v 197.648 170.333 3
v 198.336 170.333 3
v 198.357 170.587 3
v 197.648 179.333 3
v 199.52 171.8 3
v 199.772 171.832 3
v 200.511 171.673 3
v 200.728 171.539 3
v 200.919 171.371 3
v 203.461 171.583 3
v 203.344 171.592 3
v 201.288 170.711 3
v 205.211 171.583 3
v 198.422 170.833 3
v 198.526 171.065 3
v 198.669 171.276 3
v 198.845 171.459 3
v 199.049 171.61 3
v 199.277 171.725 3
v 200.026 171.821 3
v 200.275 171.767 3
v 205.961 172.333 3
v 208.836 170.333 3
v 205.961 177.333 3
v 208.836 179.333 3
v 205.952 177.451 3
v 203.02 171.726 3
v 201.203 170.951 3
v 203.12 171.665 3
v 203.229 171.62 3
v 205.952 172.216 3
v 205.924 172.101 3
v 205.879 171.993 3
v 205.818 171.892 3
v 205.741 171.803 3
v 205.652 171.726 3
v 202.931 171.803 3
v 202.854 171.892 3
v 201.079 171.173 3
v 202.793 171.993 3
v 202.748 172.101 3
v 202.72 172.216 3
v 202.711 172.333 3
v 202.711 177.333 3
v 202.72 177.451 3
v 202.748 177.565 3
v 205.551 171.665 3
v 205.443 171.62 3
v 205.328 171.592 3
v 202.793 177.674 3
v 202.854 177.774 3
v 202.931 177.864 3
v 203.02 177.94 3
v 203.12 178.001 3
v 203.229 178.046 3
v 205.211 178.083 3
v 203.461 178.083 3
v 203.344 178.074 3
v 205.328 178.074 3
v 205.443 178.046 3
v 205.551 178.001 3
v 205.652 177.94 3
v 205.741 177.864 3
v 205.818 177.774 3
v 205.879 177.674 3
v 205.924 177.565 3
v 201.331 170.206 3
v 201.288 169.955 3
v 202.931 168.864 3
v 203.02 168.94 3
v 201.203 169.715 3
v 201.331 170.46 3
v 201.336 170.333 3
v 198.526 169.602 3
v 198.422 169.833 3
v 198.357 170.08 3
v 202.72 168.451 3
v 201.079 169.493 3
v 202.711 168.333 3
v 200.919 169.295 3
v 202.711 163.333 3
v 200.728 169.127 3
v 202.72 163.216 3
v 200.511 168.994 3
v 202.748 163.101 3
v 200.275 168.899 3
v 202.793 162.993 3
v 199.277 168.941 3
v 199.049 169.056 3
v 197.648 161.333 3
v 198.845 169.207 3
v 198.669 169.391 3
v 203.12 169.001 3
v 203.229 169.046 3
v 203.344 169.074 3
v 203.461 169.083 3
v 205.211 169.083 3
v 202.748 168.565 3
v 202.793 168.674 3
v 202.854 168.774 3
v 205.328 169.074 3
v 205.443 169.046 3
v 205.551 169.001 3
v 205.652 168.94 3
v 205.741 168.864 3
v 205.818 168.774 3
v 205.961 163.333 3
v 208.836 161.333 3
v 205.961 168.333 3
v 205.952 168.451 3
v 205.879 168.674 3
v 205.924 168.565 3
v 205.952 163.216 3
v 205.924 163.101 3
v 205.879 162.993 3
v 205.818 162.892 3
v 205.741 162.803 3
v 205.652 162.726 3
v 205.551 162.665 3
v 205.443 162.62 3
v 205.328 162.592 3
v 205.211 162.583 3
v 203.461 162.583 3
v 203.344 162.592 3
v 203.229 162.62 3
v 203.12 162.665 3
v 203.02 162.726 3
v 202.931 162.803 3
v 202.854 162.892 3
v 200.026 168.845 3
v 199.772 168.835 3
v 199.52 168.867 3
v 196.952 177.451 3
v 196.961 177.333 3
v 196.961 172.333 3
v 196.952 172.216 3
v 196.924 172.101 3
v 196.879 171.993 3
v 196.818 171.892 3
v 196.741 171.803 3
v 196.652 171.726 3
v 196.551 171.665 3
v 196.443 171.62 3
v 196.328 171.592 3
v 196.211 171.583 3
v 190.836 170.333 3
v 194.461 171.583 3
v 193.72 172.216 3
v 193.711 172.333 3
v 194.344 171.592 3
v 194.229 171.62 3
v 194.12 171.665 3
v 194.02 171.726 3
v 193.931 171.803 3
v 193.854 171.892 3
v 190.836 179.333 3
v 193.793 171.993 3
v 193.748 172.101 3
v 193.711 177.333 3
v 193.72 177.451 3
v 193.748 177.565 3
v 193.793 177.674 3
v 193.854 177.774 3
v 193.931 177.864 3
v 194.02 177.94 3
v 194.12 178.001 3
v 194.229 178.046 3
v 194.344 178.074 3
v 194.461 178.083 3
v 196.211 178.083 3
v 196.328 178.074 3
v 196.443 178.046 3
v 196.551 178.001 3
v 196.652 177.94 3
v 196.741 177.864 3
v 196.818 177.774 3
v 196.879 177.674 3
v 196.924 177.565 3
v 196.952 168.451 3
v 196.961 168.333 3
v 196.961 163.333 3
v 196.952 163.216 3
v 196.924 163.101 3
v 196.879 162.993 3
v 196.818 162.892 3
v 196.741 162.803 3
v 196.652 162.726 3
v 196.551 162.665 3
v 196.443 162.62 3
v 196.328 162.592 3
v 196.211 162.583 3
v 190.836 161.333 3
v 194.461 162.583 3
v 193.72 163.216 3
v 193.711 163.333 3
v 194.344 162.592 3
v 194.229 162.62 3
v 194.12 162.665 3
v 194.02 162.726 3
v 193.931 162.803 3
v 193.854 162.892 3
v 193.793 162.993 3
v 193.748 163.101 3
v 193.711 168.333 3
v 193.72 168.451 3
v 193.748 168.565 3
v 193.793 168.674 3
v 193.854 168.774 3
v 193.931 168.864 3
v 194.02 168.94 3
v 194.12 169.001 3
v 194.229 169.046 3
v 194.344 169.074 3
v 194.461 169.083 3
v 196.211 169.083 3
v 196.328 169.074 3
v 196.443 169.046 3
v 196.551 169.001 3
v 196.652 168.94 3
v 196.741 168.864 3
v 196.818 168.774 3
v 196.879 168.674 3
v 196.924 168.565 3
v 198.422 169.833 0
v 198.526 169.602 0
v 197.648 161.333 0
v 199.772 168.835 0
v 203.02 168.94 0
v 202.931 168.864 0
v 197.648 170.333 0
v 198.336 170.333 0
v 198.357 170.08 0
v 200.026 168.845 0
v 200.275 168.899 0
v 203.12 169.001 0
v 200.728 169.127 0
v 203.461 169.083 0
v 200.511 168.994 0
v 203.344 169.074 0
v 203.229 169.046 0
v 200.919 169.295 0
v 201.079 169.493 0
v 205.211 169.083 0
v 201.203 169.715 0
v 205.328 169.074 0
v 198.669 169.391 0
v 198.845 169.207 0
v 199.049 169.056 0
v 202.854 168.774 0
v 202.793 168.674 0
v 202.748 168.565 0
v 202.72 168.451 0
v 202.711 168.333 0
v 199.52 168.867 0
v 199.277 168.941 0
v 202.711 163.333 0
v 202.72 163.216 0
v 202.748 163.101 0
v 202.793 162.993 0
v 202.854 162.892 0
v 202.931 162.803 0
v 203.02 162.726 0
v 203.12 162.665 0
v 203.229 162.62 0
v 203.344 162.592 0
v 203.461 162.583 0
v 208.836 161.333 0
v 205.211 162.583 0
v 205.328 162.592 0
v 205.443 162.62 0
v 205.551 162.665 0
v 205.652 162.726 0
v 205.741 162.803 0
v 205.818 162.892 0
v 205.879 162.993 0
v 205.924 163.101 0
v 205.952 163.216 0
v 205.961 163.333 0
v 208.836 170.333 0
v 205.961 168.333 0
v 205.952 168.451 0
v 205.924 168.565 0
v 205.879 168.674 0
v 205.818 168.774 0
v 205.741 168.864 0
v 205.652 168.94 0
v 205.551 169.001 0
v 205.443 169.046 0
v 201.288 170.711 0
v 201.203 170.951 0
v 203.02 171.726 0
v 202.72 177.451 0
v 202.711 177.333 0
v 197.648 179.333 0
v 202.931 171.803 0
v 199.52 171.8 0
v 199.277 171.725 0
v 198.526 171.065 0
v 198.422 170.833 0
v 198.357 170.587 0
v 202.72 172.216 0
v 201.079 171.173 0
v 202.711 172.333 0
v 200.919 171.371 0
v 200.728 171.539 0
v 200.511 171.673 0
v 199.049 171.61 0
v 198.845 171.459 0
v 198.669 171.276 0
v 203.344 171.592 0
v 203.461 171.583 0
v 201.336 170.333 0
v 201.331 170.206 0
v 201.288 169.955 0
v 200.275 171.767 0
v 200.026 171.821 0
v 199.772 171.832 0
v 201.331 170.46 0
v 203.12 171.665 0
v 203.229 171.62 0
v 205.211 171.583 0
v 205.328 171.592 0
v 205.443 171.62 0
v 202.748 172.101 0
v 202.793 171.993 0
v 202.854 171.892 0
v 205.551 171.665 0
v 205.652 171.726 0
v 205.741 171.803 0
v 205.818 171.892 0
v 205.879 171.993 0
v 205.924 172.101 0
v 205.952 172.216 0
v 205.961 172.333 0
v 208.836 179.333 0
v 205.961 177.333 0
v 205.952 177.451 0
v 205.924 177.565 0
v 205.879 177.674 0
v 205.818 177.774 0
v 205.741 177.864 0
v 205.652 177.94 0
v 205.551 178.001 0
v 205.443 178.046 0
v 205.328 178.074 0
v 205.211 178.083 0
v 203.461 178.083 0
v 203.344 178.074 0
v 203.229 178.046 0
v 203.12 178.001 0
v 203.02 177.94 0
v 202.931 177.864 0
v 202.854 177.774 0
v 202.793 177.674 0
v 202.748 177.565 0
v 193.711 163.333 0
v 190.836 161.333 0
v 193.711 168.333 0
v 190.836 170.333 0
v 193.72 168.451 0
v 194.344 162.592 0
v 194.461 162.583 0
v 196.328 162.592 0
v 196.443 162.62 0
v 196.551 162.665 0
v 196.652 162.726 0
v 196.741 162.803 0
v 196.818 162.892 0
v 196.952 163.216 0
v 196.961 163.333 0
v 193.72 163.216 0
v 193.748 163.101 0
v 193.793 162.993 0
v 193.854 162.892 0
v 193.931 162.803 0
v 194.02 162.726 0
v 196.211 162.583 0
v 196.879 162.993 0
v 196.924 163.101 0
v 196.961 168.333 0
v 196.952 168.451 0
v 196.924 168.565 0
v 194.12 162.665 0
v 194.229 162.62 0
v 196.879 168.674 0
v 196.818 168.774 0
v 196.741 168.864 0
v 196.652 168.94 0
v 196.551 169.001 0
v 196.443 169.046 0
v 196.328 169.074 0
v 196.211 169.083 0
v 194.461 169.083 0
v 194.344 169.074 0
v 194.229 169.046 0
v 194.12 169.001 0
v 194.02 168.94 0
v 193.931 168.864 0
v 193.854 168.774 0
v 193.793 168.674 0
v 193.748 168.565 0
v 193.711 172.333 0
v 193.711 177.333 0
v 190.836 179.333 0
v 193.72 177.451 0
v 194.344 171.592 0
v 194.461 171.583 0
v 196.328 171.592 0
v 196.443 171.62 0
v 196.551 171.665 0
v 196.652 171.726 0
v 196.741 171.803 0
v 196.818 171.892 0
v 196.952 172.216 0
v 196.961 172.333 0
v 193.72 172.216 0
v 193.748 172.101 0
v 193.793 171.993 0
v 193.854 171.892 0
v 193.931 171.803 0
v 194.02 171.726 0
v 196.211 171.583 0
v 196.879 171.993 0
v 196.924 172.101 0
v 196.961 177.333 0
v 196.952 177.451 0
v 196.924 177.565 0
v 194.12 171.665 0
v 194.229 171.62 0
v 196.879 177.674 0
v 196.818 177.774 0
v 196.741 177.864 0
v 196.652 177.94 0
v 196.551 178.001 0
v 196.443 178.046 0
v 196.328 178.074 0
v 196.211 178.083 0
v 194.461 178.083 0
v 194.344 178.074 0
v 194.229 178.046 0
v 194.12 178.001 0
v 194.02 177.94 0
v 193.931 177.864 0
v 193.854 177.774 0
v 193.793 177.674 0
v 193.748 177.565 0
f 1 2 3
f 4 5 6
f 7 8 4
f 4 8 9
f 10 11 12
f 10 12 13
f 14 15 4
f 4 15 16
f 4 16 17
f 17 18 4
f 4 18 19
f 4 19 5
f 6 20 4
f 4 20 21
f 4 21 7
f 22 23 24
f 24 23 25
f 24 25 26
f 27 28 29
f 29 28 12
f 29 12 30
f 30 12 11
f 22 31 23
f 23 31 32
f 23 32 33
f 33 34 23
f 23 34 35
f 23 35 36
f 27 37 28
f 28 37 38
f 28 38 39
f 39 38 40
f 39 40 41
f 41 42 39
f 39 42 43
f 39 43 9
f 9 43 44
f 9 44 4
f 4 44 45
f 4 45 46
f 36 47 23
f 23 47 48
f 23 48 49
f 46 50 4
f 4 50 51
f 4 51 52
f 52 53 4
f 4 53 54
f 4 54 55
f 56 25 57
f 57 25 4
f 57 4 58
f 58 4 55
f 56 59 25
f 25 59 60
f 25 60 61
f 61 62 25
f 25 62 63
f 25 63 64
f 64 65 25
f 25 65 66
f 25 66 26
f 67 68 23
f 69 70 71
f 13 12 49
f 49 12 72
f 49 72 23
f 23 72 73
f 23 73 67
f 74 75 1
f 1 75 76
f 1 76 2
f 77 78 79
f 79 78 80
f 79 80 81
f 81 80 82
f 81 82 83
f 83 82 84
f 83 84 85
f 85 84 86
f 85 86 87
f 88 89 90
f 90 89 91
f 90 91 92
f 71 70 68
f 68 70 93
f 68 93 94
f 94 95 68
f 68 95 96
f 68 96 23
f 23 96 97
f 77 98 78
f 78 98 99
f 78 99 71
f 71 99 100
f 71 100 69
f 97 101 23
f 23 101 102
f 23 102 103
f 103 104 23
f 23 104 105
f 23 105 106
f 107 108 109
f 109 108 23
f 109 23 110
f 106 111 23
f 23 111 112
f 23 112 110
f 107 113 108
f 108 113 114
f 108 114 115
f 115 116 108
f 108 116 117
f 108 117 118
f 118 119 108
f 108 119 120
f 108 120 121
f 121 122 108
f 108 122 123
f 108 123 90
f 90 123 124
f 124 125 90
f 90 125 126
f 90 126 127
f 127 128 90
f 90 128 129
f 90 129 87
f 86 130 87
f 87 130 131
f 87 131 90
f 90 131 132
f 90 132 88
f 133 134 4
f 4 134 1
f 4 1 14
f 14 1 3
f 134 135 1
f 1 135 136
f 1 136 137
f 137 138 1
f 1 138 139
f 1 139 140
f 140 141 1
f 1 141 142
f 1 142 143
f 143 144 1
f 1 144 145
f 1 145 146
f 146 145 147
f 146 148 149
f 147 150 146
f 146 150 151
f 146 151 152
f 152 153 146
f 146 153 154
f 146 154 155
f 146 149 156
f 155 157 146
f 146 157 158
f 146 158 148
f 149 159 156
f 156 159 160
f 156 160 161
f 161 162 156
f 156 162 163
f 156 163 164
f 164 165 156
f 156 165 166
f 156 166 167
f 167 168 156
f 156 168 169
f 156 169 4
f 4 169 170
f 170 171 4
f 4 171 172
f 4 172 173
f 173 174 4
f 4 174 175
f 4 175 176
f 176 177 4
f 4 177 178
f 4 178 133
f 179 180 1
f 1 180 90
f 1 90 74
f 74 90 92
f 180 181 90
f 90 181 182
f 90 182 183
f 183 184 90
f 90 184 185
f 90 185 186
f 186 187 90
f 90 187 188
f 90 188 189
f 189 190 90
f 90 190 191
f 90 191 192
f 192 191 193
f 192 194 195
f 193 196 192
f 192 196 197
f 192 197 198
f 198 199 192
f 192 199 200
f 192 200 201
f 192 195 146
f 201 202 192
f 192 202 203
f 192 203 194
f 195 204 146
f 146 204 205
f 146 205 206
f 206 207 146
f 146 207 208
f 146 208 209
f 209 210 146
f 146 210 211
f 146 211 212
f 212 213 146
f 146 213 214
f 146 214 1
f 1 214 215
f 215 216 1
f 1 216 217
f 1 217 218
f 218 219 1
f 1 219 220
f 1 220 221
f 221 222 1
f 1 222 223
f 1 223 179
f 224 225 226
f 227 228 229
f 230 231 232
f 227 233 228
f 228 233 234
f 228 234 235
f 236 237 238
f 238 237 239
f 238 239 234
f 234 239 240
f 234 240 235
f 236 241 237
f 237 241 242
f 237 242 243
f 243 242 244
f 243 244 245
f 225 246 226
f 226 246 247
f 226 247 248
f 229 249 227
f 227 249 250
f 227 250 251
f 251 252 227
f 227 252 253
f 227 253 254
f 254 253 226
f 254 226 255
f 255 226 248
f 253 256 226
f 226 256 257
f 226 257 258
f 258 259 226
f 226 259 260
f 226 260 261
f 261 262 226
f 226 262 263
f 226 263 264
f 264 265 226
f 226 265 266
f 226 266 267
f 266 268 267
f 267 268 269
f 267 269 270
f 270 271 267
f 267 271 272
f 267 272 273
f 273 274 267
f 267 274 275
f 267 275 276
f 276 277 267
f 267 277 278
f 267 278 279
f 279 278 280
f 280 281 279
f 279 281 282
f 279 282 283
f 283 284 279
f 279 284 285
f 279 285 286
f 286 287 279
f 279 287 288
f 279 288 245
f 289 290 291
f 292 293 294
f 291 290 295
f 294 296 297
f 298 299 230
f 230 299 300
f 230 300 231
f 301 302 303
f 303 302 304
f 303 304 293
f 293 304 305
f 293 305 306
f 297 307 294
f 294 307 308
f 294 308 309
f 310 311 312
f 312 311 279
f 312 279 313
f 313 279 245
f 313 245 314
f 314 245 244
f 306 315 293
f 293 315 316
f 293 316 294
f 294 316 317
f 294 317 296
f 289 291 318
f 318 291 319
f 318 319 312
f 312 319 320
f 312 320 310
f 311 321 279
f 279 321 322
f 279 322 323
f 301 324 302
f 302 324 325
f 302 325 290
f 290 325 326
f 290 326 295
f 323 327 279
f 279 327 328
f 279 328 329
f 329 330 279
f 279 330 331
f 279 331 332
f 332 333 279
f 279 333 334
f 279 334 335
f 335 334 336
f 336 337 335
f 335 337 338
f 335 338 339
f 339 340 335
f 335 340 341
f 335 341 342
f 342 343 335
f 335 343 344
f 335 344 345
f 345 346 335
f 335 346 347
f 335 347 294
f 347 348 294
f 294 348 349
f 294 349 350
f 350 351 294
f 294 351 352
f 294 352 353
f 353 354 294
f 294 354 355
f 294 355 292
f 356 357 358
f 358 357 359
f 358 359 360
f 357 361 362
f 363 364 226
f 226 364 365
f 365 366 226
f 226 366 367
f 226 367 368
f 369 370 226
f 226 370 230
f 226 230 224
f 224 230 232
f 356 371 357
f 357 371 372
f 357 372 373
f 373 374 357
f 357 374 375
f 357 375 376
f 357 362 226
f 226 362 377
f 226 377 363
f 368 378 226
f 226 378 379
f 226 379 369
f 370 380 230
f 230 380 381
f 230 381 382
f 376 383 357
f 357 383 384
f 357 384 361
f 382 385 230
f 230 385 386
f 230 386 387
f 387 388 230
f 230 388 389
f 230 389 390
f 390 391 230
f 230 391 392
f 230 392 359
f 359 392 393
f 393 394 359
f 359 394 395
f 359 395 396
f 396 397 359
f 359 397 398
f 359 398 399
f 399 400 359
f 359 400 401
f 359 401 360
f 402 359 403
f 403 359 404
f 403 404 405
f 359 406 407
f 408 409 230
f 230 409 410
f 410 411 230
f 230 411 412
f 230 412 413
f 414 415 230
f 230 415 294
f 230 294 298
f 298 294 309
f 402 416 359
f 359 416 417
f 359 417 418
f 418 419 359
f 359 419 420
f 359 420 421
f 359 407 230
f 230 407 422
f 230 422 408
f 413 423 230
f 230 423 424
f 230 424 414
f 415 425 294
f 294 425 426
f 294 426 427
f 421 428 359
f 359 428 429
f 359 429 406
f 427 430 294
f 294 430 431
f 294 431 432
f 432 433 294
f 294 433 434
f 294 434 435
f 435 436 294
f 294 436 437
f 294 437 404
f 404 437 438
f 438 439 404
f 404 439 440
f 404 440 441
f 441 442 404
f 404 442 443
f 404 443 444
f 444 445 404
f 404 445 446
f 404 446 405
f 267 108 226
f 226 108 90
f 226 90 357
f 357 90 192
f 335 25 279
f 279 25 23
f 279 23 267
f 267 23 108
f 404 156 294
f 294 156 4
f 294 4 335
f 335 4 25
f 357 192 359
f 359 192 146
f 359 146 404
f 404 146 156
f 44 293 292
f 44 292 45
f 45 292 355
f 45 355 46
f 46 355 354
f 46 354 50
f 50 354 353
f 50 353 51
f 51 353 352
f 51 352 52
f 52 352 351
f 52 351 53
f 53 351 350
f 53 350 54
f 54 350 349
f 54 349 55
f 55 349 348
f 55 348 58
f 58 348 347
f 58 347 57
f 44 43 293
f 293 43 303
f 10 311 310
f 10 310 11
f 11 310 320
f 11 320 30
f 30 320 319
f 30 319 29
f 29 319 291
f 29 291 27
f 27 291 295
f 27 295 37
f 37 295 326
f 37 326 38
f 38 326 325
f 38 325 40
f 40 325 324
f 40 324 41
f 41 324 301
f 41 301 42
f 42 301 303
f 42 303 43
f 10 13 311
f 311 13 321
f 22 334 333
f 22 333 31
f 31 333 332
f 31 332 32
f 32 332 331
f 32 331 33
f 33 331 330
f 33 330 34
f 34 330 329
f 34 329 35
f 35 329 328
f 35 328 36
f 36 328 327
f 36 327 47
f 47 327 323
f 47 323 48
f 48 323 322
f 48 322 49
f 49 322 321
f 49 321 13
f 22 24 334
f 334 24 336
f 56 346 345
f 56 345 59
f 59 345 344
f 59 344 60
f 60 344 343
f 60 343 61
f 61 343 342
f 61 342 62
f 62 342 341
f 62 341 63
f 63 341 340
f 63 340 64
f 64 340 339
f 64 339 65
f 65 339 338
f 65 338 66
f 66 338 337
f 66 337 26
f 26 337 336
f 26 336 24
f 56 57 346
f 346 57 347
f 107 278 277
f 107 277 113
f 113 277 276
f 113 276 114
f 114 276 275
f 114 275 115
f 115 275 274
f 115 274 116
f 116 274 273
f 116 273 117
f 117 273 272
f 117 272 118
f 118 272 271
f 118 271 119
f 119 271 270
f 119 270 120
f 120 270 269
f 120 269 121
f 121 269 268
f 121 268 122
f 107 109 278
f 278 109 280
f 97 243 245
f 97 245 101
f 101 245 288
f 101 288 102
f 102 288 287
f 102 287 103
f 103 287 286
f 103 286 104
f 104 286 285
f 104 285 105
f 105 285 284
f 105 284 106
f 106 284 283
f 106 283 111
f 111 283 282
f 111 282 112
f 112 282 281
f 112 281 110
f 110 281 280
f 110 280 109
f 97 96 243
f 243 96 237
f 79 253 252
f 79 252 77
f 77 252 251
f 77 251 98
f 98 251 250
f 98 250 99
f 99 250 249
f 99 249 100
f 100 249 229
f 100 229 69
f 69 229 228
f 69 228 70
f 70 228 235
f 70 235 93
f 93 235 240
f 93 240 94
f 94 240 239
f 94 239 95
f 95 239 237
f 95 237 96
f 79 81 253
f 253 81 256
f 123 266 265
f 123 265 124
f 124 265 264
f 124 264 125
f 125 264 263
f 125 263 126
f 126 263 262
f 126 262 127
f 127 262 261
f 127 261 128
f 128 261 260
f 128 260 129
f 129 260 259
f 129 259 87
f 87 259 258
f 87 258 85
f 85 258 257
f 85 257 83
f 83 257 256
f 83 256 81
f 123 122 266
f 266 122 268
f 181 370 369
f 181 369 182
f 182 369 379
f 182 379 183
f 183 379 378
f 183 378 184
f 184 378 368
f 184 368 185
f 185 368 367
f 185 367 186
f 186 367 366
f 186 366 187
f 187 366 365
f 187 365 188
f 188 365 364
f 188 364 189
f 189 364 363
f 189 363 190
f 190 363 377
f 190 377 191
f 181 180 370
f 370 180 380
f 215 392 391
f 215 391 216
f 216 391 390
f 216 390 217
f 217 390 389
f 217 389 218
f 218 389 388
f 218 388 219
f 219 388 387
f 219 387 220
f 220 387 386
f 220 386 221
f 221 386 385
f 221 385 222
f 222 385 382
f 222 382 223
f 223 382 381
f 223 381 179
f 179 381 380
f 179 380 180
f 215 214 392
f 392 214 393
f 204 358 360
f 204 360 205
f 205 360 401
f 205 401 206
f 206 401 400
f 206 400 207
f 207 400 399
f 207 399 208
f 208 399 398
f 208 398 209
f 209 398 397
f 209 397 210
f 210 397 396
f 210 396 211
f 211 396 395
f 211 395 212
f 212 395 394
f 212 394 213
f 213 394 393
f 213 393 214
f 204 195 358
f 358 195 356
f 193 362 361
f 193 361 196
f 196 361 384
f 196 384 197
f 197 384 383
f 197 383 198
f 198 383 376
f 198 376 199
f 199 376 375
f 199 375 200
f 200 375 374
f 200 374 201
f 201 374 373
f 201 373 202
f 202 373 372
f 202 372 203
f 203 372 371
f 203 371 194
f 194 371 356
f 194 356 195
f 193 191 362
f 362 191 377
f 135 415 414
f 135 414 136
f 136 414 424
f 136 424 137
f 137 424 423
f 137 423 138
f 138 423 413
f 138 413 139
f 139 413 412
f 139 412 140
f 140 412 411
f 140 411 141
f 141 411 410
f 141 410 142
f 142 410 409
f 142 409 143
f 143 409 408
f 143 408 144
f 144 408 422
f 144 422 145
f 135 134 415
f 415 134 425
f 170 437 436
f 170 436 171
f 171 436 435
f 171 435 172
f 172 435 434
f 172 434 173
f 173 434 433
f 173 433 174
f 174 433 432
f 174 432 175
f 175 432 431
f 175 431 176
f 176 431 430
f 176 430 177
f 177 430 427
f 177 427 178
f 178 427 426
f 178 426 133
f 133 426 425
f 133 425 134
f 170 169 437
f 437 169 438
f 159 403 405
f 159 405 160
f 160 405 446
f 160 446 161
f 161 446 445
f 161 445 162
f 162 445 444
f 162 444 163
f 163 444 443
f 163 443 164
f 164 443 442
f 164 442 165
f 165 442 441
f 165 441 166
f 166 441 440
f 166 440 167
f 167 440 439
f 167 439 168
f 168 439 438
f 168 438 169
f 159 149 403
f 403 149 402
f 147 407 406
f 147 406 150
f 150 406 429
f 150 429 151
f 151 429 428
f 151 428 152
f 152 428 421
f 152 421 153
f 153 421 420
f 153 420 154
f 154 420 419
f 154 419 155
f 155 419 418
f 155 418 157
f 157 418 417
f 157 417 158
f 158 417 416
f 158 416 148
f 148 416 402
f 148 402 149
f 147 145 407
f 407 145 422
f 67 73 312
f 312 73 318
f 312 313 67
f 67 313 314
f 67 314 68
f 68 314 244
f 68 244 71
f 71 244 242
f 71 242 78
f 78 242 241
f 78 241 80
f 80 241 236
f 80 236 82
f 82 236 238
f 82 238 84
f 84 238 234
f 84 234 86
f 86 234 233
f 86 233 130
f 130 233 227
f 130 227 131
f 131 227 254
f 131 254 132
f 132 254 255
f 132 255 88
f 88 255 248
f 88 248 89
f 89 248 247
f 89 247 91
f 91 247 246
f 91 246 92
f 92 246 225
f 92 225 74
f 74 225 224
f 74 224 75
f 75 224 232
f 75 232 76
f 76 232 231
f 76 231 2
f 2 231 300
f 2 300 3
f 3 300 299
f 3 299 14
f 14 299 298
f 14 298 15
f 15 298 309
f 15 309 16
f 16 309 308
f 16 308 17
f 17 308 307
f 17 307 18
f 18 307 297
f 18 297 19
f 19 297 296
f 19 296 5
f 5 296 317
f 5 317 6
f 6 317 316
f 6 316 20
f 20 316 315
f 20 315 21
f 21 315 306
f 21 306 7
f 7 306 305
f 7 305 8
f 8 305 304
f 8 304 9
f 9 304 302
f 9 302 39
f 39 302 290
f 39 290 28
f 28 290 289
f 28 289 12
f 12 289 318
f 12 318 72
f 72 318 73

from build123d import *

# Parameters (mm, degrees)
MODEL_W                 = 18
MODEL_H                 = 18
MODEL_R                 = 1.5
SALIENTE_EXTRUIR1_DEPTH = 3


with BuildPart() as part:
    # Model → Saliente-Extruir1 (new body)
    with BuildSketch(Plane.XY):
        with Locations((199.835922194, 170.333196305)):
            Rectangle(MODEL_W, MODEL_H)
        with Locations((199.835922194, 170.333196305)):
            Circle(MODEL_R, mode=Mode.SUBTRACT)
        with BuildLine():
            Line((202.710922194, 172.333196305), (202.710922194, 177.333196305))
            ThreePointArc((202.710922194, 177.333196305), (202.930592108, 177.86352639), (203.460922194, 178.083196305))
            Line((203.460922194, 178.083196305), (205.210922194, 178.083196305))
            ThreePointArc((205.210922194, 178.083196305), (205.74125228, 177.86352639), (205.960922194, 177.333196305))
            Line((205.960922194, 177.333196305), (205.960922194, 172.333196305))
            ThreePointArc((205.960922194, 172.333196305), (205.74125228, 171.802866219), (205.210922194, 171.583196305))
            Line((205.210922194, 171.583196305), (203.460922194, 171.583196305))
            ThreePointArc((203.460922194, 171.583196305), (202.930592108, 171.802866219), (202.710922194, 172.333196305))
        make_face(mode=Mode.SUBTRACT)
        with BuildLine():
            Line((205.960922194, 168.333196305), (205.960922194, 163.333196305))
            ThreePointArc((205.960922194, 163.333196305), (205.74125228, 162.802866219), (205.210922194, 162.583196305))
            Line((205.210922194, 162.583196305), (203.460922194, 162.583196305))
            ThreePointArc((203.460922194, 162.583196305), (202.930592108, 162.802866219), (202.710922194, 163.333196305))
            Line((202.710922194, 163.333196305), (202.710922194, 168.333196305))
            ThreePointArc((202.710922194, 168.333196305), (202.930592108, 168.86352639), (203.460922194, 169.083196305))
            Line((203.460922194, 169.083196305), (205.210922194, 169.083196305))
            ThreePointArc((205.210922194, 169.083196305), (205.74125228, 168.86352639), (205.960922194, 168.333196305))
        make_face(mode=Mode.SUBTRACT)
        with BuildLine():
            Line((196.960922194, 168.333196305), (196.960922194, 163.333196305))
            ThreePointArc((196.960922194, 163.333196305), (196.74125228, 162.802866219), (196.210922194, 162.583196305))
            Line((196.210922194, 162.583196305), (194.460922194, 162.583196305))
            ThreePointArc((194.460922194, 162.583196305), (193.930592108, 162.802866219), (193.710922194, 163.333196305))
            Line((193.710922194, 163.333196305), (193.710922194, 168.333196305))
            ThreePointArc((193.710922194, 168.333196305), (193.930592108, 168.86352639), (194.460922194, 169.083196305))
            Line((194.460922194, 169.083196305), (196.210922194, 169.083196305))
            ThreePointArc((196.210922194, 169.083196305), (196.74125228, 168.86352639), (196.960922194, 168.333196305))
        make_face(mode=Mode.SUBTRACT)
        with BuildLine():
            Line((196.960922194, 177.333196305), (196.960922194, 172.333196305))
            ThreePointArc((196.960922194, 172.333196305), (196.74125228, 171.802866219), (196.210922194, 171.583196305))
            Line((196.210922194, 171.583196305), (194.460922194, 171.583196305))
            ThreePointArc((194.460922194, 171.583196305), (193.930592108, 171.802866219), (193.710922194, 172.333196305))
            Line((193.710922194, 172.333196305), (193.710922194, 177.333196305))
            ThreePointArc((193.710922194, 177.333196305), (193.930592108, 177.86352639), (194.460922194, 178.083196305))
            Line((194.460922194, 178.083196305), (196.210922194, 178.083196305))
            ThreePointArc((196.210922194, 178.083196305), (196.74125228, 177.86352639), (196.960922194, 177.333196305))
        make_face(mode=Mode.SUBTRACT)
    extrude(amount=SALIENTE_EXTRUIR1_DEPTH)


solid = part.part
